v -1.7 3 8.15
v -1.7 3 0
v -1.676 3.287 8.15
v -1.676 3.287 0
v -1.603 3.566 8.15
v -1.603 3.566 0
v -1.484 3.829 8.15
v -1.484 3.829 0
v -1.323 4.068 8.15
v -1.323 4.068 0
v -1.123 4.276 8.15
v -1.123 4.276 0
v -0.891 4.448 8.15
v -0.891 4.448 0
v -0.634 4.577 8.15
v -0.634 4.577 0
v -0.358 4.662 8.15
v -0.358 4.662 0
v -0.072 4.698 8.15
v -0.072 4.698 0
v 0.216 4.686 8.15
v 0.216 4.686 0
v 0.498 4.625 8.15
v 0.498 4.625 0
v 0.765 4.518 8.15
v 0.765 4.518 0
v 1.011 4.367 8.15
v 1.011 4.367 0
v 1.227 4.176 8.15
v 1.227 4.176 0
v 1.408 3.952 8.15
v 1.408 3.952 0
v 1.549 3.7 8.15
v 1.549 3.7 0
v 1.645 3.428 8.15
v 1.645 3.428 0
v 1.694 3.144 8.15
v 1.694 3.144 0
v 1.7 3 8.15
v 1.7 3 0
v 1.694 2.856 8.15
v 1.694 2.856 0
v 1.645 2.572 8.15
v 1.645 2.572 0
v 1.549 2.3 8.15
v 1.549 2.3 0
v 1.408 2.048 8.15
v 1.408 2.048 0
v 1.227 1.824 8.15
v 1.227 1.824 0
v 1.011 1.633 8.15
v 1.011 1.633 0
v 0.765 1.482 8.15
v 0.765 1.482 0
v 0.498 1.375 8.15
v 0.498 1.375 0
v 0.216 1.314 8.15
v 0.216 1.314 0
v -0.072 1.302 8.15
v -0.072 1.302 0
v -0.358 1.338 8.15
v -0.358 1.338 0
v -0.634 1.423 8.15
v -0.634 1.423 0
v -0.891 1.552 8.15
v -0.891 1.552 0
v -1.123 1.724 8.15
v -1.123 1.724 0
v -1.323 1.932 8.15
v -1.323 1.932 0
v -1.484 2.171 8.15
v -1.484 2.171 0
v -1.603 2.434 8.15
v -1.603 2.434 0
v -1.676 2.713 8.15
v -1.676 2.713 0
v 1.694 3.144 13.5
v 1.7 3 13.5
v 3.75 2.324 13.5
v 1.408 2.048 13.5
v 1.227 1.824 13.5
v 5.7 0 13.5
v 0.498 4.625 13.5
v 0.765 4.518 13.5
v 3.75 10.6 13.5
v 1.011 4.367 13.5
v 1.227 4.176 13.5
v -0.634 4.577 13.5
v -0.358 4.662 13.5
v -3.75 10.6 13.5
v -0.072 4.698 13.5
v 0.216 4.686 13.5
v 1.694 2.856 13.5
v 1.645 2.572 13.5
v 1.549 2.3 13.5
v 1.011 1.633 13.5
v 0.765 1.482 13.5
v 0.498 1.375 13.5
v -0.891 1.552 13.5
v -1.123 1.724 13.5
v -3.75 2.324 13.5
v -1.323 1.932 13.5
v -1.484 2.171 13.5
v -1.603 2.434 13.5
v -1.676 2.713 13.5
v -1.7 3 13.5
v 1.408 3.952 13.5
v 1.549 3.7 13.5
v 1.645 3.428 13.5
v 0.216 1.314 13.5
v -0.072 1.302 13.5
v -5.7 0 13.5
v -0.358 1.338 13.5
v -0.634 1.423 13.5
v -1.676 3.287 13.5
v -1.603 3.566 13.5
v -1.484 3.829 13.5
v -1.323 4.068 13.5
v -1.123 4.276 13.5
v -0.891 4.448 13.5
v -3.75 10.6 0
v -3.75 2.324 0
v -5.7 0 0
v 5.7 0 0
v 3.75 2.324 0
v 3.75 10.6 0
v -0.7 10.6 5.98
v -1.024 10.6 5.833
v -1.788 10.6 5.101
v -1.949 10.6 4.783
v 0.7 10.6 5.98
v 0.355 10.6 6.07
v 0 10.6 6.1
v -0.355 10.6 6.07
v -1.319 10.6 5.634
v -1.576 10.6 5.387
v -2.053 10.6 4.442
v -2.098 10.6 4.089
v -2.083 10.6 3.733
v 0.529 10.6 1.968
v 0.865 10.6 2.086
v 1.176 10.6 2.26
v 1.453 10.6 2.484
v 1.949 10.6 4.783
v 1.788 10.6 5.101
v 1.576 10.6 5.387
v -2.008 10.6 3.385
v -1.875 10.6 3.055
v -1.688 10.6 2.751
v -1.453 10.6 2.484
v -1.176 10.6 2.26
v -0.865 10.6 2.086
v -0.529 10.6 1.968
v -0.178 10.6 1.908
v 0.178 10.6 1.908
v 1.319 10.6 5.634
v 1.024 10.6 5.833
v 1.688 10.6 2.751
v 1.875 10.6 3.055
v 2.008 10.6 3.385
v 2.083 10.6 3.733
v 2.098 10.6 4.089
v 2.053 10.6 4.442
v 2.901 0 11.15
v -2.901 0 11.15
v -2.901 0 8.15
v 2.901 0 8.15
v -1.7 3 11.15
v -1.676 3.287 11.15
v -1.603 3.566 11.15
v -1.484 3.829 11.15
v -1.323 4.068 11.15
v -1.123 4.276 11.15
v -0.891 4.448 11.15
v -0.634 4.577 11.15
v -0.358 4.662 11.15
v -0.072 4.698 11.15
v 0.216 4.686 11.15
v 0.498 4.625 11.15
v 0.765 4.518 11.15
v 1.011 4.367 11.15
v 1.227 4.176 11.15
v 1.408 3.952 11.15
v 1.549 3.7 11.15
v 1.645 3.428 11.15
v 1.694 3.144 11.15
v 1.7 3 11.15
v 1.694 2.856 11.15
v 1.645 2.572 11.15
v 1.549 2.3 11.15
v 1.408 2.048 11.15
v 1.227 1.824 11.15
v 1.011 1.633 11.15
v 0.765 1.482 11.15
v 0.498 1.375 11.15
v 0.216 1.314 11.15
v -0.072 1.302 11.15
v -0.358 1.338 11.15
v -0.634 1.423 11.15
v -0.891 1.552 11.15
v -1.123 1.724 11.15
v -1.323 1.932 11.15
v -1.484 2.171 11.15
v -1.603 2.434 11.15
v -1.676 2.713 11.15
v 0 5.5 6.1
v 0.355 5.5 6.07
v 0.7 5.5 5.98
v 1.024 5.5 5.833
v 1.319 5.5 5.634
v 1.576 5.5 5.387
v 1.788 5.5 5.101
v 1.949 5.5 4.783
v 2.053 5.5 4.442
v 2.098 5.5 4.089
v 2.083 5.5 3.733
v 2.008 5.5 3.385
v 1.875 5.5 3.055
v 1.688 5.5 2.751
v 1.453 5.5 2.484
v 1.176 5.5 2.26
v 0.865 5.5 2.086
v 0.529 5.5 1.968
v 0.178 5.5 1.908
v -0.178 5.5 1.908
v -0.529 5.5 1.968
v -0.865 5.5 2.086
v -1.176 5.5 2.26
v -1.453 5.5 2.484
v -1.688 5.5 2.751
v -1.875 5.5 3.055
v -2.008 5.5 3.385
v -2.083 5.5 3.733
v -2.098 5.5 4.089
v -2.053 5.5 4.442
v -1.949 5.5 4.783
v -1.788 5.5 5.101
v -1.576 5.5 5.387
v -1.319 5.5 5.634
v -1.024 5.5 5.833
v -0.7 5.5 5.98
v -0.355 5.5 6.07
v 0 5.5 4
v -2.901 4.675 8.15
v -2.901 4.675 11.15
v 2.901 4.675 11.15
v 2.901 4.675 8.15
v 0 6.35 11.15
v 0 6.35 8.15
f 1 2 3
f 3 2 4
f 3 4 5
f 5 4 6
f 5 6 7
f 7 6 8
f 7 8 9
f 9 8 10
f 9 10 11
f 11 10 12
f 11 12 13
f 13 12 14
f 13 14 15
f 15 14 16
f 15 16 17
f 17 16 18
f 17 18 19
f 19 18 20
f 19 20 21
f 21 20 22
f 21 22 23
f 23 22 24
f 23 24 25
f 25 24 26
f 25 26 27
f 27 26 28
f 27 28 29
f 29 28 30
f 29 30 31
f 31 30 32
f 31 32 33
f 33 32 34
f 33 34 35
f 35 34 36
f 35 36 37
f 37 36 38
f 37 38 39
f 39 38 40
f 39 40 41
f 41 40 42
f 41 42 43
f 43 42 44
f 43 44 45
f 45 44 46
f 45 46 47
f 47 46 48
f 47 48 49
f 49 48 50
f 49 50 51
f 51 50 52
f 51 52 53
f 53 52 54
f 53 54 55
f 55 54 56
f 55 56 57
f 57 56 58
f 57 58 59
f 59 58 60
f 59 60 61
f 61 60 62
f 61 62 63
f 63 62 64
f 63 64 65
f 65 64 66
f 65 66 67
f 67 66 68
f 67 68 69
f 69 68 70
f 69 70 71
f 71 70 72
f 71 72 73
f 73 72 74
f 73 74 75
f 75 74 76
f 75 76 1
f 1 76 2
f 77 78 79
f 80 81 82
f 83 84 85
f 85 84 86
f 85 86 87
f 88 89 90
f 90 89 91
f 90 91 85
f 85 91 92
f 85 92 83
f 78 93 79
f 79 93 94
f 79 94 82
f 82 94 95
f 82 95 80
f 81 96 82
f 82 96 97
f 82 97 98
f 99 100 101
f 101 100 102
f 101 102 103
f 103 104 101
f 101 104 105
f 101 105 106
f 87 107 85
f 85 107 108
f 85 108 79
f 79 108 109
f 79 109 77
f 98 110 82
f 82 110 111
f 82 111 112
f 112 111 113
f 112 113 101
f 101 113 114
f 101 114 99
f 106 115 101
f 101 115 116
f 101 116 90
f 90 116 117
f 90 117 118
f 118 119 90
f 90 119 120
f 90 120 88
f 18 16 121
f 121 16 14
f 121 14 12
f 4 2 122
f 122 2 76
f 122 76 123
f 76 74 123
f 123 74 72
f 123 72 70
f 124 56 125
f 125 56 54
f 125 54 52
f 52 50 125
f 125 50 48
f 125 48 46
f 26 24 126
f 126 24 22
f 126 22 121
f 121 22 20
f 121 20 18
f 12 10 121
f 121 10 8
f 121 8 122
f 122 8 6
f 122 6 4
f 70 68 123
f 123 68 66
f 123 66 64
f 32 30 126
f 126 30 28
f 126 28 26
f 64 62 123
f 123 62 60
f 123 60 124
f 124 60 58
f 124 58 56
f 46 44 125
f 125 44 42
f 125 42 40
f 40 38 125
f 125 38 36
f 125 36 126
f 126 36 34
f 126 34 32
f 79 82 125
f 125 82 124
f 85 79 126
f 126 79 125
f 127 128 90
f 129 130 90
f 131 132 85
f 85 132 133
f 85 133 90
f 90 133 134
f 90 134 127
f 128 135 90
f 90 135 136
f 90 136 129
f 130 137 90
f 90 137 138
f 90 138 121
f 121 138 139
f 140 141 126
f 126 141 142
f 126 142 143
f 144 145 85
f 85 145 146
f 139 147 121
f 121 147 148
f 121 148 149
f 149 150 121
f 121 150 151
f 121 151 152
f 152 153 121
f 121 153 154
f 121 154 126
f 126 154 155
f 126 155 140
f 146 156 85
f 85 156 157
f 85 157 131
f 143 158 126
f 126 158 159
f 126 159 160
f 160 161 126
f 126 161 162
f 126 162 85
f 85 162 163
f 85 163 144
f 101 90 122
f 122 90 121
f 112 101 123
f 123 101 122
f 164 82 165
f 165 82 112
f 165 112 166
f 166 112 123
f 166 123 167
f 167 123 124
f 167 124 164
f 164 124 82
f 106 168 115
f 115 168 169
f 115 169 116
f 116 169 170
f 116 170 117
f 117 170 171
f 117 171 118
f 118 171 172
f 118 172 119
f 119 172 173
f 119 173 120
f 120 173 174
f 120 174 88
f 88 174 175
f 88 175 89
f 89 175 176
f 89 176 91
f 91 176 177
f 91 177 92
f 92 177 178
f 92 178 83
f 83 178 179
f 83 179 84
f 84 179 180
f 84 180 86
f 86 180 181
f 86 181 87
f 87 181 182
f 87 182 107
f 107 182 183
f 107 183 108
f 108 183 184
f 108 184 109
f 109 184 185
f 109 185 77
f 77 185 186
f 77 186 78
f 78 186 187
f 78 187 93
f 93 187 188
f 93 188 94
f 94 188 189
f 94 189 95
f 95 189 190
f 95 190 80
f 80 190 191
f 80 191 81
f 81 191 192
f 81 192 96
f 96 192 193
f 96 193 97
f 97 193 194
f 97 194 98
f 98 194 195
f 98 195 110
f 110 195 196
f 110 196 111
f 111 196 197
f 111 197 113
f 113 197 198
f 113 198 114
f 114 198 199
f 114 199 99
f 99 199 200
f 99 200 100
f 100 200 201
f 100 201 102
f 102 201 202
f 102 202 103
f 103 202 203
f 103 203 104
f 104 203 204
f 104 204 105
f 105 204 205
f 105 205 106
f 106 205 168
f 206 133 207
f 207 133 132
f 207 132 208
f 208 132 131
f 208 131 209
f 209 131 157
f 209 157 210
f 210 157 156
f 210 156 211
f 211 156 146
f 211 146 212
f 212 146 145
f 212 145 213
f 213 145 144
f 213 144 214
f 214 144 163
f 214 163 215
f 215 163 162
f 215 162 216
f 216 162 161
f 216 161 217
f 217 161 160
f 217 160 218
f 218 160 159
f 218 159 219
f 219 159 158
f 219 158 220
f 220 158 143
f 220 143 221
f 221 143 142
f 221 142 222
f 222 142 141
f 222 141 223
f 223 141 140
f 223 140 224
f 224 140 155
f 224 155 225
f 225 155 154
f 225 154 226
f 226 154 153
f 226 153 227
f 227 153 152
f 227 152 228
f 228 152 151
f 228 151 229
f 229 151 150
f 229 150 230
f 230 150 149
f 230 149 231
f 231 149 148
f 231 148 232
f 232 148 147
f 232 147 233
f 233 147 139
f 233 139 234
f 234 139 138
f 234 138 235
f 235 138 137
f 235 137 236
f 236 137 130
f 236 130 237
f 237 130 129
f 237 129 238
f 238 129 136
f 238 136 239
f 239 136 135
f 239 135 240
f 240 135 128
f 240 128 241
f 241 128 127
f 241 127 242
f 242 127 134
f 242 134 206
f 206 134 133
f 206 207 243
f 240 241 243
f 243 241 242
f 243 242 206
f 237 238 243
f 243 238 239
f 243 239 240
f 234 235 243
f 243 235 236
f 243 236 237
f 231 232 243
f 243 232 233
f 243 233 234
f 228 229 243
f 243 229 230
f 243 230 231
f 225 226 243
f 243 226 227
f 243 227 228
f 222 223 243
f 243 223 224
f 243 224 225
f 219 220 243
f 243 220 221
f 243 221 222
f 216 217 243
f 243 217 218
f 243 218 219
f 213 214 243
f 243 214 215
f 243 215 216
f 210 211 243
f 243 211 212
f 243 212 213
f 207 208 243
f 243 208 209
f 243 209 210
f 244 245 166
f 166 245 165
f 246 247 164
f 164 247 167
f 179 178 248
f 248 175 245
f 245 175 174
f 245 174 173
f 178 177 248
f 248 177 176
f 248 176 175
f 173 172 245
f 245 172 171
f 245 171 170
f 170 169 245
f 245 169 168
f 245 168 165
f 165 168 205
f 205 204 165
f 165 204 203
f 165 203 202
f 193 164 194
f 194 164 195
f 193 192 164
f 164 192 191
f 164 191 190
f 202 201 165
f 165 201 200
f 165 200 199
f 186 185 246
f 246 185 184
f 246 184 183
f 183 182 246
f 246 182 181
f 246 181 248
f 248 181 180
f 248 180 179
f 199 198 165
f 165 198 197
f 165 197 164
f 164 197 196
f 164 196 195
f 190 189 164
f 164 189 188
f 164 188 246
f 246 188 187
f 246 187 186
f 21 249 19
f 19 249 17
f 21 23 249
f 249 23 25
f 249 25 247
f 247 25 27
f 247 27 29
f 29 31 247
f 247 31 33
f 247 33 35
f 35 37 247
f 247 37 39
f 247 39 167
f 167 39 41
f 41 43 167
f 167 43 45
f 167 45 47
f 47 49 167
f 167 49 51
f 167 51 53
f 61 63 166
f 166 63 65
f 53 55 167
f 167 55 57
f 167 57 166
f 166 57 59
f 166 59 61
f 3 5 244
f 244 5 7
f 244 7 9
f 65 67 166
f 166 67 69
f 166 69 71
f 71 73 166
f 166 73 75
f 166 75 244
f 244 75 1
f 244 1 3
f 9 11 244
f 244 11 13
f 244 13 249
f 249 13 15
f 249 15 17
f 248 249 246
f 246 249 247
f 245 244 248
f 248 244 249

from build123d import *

# Parameters (mm, degrees)
CROQUIS1_R                 = 1.7
SALIENTE_EXTRUIR1_DEPTH    = 13.5
CROQUIS2_R                 = 2.1
CORTAR_EXTRUIR1_DEPTH      = 5.1
CORTAR_EXTRUIR2_DEPTH      = 1.5
CORTAR_EXTRUIR2_DEPTH_BACK = 1.5


with BuildPart() as part:
    # Croquis1 → Saliente-Extruir1 (new body)
    with BuildSketch(Plane.XY):
        Polygon((-5.7, 0), (5.7, 0), (3.75, 2.323919506), (3.75, 10.6), (-3.75, 10.6), (-3.75, 2.323919506), align=None)
        with Locations((0, 3)):
            Circle(CROQUIS1_R, mode=Mode.SUBTRACT)
    extrude(amount=SALIENTE_EXTRUIR1_DEPTH)

    # Croquis2 → Cortar-Extruir1 (cut)
    with BuildSketch(Plane(origin=(0, 10.6, 0), x_dir=(1, 0, 0), z_dir=(0, 1, 0))):
        with Locations((0, -4)):
            Circle(CROQUIS2_R)
    extrude(amount=-CORTAR_EXTRUIR1_DEPTH, mode=Mode.SUBTRACT)

    # Croquis3 → Cortar-Extruir2 (cut, two sides)
    with BuildSketch(Plane.XY.offset(9.65)) as cortar_extruir2_sk:
        Polygon((-2.901185103, 1.325), (-2.901185103, -5.325), (2.901185103, -5.325), (2.901185103, 1.325), (2.901185103, 4.675), (0, 6.35), (-2.901185103, 4.675), align=None)
    extrude(amount=CORTAR_EXTRUIR2_DEPTH, mode=Mode.SUBTRACT)
    extrude(cortar_extruir2_sk.sketch, amount=-CORTAR_EXTRUIR2_DEPTH_BACK, mode=Mode.SUBTRACT)


solid = part.part
